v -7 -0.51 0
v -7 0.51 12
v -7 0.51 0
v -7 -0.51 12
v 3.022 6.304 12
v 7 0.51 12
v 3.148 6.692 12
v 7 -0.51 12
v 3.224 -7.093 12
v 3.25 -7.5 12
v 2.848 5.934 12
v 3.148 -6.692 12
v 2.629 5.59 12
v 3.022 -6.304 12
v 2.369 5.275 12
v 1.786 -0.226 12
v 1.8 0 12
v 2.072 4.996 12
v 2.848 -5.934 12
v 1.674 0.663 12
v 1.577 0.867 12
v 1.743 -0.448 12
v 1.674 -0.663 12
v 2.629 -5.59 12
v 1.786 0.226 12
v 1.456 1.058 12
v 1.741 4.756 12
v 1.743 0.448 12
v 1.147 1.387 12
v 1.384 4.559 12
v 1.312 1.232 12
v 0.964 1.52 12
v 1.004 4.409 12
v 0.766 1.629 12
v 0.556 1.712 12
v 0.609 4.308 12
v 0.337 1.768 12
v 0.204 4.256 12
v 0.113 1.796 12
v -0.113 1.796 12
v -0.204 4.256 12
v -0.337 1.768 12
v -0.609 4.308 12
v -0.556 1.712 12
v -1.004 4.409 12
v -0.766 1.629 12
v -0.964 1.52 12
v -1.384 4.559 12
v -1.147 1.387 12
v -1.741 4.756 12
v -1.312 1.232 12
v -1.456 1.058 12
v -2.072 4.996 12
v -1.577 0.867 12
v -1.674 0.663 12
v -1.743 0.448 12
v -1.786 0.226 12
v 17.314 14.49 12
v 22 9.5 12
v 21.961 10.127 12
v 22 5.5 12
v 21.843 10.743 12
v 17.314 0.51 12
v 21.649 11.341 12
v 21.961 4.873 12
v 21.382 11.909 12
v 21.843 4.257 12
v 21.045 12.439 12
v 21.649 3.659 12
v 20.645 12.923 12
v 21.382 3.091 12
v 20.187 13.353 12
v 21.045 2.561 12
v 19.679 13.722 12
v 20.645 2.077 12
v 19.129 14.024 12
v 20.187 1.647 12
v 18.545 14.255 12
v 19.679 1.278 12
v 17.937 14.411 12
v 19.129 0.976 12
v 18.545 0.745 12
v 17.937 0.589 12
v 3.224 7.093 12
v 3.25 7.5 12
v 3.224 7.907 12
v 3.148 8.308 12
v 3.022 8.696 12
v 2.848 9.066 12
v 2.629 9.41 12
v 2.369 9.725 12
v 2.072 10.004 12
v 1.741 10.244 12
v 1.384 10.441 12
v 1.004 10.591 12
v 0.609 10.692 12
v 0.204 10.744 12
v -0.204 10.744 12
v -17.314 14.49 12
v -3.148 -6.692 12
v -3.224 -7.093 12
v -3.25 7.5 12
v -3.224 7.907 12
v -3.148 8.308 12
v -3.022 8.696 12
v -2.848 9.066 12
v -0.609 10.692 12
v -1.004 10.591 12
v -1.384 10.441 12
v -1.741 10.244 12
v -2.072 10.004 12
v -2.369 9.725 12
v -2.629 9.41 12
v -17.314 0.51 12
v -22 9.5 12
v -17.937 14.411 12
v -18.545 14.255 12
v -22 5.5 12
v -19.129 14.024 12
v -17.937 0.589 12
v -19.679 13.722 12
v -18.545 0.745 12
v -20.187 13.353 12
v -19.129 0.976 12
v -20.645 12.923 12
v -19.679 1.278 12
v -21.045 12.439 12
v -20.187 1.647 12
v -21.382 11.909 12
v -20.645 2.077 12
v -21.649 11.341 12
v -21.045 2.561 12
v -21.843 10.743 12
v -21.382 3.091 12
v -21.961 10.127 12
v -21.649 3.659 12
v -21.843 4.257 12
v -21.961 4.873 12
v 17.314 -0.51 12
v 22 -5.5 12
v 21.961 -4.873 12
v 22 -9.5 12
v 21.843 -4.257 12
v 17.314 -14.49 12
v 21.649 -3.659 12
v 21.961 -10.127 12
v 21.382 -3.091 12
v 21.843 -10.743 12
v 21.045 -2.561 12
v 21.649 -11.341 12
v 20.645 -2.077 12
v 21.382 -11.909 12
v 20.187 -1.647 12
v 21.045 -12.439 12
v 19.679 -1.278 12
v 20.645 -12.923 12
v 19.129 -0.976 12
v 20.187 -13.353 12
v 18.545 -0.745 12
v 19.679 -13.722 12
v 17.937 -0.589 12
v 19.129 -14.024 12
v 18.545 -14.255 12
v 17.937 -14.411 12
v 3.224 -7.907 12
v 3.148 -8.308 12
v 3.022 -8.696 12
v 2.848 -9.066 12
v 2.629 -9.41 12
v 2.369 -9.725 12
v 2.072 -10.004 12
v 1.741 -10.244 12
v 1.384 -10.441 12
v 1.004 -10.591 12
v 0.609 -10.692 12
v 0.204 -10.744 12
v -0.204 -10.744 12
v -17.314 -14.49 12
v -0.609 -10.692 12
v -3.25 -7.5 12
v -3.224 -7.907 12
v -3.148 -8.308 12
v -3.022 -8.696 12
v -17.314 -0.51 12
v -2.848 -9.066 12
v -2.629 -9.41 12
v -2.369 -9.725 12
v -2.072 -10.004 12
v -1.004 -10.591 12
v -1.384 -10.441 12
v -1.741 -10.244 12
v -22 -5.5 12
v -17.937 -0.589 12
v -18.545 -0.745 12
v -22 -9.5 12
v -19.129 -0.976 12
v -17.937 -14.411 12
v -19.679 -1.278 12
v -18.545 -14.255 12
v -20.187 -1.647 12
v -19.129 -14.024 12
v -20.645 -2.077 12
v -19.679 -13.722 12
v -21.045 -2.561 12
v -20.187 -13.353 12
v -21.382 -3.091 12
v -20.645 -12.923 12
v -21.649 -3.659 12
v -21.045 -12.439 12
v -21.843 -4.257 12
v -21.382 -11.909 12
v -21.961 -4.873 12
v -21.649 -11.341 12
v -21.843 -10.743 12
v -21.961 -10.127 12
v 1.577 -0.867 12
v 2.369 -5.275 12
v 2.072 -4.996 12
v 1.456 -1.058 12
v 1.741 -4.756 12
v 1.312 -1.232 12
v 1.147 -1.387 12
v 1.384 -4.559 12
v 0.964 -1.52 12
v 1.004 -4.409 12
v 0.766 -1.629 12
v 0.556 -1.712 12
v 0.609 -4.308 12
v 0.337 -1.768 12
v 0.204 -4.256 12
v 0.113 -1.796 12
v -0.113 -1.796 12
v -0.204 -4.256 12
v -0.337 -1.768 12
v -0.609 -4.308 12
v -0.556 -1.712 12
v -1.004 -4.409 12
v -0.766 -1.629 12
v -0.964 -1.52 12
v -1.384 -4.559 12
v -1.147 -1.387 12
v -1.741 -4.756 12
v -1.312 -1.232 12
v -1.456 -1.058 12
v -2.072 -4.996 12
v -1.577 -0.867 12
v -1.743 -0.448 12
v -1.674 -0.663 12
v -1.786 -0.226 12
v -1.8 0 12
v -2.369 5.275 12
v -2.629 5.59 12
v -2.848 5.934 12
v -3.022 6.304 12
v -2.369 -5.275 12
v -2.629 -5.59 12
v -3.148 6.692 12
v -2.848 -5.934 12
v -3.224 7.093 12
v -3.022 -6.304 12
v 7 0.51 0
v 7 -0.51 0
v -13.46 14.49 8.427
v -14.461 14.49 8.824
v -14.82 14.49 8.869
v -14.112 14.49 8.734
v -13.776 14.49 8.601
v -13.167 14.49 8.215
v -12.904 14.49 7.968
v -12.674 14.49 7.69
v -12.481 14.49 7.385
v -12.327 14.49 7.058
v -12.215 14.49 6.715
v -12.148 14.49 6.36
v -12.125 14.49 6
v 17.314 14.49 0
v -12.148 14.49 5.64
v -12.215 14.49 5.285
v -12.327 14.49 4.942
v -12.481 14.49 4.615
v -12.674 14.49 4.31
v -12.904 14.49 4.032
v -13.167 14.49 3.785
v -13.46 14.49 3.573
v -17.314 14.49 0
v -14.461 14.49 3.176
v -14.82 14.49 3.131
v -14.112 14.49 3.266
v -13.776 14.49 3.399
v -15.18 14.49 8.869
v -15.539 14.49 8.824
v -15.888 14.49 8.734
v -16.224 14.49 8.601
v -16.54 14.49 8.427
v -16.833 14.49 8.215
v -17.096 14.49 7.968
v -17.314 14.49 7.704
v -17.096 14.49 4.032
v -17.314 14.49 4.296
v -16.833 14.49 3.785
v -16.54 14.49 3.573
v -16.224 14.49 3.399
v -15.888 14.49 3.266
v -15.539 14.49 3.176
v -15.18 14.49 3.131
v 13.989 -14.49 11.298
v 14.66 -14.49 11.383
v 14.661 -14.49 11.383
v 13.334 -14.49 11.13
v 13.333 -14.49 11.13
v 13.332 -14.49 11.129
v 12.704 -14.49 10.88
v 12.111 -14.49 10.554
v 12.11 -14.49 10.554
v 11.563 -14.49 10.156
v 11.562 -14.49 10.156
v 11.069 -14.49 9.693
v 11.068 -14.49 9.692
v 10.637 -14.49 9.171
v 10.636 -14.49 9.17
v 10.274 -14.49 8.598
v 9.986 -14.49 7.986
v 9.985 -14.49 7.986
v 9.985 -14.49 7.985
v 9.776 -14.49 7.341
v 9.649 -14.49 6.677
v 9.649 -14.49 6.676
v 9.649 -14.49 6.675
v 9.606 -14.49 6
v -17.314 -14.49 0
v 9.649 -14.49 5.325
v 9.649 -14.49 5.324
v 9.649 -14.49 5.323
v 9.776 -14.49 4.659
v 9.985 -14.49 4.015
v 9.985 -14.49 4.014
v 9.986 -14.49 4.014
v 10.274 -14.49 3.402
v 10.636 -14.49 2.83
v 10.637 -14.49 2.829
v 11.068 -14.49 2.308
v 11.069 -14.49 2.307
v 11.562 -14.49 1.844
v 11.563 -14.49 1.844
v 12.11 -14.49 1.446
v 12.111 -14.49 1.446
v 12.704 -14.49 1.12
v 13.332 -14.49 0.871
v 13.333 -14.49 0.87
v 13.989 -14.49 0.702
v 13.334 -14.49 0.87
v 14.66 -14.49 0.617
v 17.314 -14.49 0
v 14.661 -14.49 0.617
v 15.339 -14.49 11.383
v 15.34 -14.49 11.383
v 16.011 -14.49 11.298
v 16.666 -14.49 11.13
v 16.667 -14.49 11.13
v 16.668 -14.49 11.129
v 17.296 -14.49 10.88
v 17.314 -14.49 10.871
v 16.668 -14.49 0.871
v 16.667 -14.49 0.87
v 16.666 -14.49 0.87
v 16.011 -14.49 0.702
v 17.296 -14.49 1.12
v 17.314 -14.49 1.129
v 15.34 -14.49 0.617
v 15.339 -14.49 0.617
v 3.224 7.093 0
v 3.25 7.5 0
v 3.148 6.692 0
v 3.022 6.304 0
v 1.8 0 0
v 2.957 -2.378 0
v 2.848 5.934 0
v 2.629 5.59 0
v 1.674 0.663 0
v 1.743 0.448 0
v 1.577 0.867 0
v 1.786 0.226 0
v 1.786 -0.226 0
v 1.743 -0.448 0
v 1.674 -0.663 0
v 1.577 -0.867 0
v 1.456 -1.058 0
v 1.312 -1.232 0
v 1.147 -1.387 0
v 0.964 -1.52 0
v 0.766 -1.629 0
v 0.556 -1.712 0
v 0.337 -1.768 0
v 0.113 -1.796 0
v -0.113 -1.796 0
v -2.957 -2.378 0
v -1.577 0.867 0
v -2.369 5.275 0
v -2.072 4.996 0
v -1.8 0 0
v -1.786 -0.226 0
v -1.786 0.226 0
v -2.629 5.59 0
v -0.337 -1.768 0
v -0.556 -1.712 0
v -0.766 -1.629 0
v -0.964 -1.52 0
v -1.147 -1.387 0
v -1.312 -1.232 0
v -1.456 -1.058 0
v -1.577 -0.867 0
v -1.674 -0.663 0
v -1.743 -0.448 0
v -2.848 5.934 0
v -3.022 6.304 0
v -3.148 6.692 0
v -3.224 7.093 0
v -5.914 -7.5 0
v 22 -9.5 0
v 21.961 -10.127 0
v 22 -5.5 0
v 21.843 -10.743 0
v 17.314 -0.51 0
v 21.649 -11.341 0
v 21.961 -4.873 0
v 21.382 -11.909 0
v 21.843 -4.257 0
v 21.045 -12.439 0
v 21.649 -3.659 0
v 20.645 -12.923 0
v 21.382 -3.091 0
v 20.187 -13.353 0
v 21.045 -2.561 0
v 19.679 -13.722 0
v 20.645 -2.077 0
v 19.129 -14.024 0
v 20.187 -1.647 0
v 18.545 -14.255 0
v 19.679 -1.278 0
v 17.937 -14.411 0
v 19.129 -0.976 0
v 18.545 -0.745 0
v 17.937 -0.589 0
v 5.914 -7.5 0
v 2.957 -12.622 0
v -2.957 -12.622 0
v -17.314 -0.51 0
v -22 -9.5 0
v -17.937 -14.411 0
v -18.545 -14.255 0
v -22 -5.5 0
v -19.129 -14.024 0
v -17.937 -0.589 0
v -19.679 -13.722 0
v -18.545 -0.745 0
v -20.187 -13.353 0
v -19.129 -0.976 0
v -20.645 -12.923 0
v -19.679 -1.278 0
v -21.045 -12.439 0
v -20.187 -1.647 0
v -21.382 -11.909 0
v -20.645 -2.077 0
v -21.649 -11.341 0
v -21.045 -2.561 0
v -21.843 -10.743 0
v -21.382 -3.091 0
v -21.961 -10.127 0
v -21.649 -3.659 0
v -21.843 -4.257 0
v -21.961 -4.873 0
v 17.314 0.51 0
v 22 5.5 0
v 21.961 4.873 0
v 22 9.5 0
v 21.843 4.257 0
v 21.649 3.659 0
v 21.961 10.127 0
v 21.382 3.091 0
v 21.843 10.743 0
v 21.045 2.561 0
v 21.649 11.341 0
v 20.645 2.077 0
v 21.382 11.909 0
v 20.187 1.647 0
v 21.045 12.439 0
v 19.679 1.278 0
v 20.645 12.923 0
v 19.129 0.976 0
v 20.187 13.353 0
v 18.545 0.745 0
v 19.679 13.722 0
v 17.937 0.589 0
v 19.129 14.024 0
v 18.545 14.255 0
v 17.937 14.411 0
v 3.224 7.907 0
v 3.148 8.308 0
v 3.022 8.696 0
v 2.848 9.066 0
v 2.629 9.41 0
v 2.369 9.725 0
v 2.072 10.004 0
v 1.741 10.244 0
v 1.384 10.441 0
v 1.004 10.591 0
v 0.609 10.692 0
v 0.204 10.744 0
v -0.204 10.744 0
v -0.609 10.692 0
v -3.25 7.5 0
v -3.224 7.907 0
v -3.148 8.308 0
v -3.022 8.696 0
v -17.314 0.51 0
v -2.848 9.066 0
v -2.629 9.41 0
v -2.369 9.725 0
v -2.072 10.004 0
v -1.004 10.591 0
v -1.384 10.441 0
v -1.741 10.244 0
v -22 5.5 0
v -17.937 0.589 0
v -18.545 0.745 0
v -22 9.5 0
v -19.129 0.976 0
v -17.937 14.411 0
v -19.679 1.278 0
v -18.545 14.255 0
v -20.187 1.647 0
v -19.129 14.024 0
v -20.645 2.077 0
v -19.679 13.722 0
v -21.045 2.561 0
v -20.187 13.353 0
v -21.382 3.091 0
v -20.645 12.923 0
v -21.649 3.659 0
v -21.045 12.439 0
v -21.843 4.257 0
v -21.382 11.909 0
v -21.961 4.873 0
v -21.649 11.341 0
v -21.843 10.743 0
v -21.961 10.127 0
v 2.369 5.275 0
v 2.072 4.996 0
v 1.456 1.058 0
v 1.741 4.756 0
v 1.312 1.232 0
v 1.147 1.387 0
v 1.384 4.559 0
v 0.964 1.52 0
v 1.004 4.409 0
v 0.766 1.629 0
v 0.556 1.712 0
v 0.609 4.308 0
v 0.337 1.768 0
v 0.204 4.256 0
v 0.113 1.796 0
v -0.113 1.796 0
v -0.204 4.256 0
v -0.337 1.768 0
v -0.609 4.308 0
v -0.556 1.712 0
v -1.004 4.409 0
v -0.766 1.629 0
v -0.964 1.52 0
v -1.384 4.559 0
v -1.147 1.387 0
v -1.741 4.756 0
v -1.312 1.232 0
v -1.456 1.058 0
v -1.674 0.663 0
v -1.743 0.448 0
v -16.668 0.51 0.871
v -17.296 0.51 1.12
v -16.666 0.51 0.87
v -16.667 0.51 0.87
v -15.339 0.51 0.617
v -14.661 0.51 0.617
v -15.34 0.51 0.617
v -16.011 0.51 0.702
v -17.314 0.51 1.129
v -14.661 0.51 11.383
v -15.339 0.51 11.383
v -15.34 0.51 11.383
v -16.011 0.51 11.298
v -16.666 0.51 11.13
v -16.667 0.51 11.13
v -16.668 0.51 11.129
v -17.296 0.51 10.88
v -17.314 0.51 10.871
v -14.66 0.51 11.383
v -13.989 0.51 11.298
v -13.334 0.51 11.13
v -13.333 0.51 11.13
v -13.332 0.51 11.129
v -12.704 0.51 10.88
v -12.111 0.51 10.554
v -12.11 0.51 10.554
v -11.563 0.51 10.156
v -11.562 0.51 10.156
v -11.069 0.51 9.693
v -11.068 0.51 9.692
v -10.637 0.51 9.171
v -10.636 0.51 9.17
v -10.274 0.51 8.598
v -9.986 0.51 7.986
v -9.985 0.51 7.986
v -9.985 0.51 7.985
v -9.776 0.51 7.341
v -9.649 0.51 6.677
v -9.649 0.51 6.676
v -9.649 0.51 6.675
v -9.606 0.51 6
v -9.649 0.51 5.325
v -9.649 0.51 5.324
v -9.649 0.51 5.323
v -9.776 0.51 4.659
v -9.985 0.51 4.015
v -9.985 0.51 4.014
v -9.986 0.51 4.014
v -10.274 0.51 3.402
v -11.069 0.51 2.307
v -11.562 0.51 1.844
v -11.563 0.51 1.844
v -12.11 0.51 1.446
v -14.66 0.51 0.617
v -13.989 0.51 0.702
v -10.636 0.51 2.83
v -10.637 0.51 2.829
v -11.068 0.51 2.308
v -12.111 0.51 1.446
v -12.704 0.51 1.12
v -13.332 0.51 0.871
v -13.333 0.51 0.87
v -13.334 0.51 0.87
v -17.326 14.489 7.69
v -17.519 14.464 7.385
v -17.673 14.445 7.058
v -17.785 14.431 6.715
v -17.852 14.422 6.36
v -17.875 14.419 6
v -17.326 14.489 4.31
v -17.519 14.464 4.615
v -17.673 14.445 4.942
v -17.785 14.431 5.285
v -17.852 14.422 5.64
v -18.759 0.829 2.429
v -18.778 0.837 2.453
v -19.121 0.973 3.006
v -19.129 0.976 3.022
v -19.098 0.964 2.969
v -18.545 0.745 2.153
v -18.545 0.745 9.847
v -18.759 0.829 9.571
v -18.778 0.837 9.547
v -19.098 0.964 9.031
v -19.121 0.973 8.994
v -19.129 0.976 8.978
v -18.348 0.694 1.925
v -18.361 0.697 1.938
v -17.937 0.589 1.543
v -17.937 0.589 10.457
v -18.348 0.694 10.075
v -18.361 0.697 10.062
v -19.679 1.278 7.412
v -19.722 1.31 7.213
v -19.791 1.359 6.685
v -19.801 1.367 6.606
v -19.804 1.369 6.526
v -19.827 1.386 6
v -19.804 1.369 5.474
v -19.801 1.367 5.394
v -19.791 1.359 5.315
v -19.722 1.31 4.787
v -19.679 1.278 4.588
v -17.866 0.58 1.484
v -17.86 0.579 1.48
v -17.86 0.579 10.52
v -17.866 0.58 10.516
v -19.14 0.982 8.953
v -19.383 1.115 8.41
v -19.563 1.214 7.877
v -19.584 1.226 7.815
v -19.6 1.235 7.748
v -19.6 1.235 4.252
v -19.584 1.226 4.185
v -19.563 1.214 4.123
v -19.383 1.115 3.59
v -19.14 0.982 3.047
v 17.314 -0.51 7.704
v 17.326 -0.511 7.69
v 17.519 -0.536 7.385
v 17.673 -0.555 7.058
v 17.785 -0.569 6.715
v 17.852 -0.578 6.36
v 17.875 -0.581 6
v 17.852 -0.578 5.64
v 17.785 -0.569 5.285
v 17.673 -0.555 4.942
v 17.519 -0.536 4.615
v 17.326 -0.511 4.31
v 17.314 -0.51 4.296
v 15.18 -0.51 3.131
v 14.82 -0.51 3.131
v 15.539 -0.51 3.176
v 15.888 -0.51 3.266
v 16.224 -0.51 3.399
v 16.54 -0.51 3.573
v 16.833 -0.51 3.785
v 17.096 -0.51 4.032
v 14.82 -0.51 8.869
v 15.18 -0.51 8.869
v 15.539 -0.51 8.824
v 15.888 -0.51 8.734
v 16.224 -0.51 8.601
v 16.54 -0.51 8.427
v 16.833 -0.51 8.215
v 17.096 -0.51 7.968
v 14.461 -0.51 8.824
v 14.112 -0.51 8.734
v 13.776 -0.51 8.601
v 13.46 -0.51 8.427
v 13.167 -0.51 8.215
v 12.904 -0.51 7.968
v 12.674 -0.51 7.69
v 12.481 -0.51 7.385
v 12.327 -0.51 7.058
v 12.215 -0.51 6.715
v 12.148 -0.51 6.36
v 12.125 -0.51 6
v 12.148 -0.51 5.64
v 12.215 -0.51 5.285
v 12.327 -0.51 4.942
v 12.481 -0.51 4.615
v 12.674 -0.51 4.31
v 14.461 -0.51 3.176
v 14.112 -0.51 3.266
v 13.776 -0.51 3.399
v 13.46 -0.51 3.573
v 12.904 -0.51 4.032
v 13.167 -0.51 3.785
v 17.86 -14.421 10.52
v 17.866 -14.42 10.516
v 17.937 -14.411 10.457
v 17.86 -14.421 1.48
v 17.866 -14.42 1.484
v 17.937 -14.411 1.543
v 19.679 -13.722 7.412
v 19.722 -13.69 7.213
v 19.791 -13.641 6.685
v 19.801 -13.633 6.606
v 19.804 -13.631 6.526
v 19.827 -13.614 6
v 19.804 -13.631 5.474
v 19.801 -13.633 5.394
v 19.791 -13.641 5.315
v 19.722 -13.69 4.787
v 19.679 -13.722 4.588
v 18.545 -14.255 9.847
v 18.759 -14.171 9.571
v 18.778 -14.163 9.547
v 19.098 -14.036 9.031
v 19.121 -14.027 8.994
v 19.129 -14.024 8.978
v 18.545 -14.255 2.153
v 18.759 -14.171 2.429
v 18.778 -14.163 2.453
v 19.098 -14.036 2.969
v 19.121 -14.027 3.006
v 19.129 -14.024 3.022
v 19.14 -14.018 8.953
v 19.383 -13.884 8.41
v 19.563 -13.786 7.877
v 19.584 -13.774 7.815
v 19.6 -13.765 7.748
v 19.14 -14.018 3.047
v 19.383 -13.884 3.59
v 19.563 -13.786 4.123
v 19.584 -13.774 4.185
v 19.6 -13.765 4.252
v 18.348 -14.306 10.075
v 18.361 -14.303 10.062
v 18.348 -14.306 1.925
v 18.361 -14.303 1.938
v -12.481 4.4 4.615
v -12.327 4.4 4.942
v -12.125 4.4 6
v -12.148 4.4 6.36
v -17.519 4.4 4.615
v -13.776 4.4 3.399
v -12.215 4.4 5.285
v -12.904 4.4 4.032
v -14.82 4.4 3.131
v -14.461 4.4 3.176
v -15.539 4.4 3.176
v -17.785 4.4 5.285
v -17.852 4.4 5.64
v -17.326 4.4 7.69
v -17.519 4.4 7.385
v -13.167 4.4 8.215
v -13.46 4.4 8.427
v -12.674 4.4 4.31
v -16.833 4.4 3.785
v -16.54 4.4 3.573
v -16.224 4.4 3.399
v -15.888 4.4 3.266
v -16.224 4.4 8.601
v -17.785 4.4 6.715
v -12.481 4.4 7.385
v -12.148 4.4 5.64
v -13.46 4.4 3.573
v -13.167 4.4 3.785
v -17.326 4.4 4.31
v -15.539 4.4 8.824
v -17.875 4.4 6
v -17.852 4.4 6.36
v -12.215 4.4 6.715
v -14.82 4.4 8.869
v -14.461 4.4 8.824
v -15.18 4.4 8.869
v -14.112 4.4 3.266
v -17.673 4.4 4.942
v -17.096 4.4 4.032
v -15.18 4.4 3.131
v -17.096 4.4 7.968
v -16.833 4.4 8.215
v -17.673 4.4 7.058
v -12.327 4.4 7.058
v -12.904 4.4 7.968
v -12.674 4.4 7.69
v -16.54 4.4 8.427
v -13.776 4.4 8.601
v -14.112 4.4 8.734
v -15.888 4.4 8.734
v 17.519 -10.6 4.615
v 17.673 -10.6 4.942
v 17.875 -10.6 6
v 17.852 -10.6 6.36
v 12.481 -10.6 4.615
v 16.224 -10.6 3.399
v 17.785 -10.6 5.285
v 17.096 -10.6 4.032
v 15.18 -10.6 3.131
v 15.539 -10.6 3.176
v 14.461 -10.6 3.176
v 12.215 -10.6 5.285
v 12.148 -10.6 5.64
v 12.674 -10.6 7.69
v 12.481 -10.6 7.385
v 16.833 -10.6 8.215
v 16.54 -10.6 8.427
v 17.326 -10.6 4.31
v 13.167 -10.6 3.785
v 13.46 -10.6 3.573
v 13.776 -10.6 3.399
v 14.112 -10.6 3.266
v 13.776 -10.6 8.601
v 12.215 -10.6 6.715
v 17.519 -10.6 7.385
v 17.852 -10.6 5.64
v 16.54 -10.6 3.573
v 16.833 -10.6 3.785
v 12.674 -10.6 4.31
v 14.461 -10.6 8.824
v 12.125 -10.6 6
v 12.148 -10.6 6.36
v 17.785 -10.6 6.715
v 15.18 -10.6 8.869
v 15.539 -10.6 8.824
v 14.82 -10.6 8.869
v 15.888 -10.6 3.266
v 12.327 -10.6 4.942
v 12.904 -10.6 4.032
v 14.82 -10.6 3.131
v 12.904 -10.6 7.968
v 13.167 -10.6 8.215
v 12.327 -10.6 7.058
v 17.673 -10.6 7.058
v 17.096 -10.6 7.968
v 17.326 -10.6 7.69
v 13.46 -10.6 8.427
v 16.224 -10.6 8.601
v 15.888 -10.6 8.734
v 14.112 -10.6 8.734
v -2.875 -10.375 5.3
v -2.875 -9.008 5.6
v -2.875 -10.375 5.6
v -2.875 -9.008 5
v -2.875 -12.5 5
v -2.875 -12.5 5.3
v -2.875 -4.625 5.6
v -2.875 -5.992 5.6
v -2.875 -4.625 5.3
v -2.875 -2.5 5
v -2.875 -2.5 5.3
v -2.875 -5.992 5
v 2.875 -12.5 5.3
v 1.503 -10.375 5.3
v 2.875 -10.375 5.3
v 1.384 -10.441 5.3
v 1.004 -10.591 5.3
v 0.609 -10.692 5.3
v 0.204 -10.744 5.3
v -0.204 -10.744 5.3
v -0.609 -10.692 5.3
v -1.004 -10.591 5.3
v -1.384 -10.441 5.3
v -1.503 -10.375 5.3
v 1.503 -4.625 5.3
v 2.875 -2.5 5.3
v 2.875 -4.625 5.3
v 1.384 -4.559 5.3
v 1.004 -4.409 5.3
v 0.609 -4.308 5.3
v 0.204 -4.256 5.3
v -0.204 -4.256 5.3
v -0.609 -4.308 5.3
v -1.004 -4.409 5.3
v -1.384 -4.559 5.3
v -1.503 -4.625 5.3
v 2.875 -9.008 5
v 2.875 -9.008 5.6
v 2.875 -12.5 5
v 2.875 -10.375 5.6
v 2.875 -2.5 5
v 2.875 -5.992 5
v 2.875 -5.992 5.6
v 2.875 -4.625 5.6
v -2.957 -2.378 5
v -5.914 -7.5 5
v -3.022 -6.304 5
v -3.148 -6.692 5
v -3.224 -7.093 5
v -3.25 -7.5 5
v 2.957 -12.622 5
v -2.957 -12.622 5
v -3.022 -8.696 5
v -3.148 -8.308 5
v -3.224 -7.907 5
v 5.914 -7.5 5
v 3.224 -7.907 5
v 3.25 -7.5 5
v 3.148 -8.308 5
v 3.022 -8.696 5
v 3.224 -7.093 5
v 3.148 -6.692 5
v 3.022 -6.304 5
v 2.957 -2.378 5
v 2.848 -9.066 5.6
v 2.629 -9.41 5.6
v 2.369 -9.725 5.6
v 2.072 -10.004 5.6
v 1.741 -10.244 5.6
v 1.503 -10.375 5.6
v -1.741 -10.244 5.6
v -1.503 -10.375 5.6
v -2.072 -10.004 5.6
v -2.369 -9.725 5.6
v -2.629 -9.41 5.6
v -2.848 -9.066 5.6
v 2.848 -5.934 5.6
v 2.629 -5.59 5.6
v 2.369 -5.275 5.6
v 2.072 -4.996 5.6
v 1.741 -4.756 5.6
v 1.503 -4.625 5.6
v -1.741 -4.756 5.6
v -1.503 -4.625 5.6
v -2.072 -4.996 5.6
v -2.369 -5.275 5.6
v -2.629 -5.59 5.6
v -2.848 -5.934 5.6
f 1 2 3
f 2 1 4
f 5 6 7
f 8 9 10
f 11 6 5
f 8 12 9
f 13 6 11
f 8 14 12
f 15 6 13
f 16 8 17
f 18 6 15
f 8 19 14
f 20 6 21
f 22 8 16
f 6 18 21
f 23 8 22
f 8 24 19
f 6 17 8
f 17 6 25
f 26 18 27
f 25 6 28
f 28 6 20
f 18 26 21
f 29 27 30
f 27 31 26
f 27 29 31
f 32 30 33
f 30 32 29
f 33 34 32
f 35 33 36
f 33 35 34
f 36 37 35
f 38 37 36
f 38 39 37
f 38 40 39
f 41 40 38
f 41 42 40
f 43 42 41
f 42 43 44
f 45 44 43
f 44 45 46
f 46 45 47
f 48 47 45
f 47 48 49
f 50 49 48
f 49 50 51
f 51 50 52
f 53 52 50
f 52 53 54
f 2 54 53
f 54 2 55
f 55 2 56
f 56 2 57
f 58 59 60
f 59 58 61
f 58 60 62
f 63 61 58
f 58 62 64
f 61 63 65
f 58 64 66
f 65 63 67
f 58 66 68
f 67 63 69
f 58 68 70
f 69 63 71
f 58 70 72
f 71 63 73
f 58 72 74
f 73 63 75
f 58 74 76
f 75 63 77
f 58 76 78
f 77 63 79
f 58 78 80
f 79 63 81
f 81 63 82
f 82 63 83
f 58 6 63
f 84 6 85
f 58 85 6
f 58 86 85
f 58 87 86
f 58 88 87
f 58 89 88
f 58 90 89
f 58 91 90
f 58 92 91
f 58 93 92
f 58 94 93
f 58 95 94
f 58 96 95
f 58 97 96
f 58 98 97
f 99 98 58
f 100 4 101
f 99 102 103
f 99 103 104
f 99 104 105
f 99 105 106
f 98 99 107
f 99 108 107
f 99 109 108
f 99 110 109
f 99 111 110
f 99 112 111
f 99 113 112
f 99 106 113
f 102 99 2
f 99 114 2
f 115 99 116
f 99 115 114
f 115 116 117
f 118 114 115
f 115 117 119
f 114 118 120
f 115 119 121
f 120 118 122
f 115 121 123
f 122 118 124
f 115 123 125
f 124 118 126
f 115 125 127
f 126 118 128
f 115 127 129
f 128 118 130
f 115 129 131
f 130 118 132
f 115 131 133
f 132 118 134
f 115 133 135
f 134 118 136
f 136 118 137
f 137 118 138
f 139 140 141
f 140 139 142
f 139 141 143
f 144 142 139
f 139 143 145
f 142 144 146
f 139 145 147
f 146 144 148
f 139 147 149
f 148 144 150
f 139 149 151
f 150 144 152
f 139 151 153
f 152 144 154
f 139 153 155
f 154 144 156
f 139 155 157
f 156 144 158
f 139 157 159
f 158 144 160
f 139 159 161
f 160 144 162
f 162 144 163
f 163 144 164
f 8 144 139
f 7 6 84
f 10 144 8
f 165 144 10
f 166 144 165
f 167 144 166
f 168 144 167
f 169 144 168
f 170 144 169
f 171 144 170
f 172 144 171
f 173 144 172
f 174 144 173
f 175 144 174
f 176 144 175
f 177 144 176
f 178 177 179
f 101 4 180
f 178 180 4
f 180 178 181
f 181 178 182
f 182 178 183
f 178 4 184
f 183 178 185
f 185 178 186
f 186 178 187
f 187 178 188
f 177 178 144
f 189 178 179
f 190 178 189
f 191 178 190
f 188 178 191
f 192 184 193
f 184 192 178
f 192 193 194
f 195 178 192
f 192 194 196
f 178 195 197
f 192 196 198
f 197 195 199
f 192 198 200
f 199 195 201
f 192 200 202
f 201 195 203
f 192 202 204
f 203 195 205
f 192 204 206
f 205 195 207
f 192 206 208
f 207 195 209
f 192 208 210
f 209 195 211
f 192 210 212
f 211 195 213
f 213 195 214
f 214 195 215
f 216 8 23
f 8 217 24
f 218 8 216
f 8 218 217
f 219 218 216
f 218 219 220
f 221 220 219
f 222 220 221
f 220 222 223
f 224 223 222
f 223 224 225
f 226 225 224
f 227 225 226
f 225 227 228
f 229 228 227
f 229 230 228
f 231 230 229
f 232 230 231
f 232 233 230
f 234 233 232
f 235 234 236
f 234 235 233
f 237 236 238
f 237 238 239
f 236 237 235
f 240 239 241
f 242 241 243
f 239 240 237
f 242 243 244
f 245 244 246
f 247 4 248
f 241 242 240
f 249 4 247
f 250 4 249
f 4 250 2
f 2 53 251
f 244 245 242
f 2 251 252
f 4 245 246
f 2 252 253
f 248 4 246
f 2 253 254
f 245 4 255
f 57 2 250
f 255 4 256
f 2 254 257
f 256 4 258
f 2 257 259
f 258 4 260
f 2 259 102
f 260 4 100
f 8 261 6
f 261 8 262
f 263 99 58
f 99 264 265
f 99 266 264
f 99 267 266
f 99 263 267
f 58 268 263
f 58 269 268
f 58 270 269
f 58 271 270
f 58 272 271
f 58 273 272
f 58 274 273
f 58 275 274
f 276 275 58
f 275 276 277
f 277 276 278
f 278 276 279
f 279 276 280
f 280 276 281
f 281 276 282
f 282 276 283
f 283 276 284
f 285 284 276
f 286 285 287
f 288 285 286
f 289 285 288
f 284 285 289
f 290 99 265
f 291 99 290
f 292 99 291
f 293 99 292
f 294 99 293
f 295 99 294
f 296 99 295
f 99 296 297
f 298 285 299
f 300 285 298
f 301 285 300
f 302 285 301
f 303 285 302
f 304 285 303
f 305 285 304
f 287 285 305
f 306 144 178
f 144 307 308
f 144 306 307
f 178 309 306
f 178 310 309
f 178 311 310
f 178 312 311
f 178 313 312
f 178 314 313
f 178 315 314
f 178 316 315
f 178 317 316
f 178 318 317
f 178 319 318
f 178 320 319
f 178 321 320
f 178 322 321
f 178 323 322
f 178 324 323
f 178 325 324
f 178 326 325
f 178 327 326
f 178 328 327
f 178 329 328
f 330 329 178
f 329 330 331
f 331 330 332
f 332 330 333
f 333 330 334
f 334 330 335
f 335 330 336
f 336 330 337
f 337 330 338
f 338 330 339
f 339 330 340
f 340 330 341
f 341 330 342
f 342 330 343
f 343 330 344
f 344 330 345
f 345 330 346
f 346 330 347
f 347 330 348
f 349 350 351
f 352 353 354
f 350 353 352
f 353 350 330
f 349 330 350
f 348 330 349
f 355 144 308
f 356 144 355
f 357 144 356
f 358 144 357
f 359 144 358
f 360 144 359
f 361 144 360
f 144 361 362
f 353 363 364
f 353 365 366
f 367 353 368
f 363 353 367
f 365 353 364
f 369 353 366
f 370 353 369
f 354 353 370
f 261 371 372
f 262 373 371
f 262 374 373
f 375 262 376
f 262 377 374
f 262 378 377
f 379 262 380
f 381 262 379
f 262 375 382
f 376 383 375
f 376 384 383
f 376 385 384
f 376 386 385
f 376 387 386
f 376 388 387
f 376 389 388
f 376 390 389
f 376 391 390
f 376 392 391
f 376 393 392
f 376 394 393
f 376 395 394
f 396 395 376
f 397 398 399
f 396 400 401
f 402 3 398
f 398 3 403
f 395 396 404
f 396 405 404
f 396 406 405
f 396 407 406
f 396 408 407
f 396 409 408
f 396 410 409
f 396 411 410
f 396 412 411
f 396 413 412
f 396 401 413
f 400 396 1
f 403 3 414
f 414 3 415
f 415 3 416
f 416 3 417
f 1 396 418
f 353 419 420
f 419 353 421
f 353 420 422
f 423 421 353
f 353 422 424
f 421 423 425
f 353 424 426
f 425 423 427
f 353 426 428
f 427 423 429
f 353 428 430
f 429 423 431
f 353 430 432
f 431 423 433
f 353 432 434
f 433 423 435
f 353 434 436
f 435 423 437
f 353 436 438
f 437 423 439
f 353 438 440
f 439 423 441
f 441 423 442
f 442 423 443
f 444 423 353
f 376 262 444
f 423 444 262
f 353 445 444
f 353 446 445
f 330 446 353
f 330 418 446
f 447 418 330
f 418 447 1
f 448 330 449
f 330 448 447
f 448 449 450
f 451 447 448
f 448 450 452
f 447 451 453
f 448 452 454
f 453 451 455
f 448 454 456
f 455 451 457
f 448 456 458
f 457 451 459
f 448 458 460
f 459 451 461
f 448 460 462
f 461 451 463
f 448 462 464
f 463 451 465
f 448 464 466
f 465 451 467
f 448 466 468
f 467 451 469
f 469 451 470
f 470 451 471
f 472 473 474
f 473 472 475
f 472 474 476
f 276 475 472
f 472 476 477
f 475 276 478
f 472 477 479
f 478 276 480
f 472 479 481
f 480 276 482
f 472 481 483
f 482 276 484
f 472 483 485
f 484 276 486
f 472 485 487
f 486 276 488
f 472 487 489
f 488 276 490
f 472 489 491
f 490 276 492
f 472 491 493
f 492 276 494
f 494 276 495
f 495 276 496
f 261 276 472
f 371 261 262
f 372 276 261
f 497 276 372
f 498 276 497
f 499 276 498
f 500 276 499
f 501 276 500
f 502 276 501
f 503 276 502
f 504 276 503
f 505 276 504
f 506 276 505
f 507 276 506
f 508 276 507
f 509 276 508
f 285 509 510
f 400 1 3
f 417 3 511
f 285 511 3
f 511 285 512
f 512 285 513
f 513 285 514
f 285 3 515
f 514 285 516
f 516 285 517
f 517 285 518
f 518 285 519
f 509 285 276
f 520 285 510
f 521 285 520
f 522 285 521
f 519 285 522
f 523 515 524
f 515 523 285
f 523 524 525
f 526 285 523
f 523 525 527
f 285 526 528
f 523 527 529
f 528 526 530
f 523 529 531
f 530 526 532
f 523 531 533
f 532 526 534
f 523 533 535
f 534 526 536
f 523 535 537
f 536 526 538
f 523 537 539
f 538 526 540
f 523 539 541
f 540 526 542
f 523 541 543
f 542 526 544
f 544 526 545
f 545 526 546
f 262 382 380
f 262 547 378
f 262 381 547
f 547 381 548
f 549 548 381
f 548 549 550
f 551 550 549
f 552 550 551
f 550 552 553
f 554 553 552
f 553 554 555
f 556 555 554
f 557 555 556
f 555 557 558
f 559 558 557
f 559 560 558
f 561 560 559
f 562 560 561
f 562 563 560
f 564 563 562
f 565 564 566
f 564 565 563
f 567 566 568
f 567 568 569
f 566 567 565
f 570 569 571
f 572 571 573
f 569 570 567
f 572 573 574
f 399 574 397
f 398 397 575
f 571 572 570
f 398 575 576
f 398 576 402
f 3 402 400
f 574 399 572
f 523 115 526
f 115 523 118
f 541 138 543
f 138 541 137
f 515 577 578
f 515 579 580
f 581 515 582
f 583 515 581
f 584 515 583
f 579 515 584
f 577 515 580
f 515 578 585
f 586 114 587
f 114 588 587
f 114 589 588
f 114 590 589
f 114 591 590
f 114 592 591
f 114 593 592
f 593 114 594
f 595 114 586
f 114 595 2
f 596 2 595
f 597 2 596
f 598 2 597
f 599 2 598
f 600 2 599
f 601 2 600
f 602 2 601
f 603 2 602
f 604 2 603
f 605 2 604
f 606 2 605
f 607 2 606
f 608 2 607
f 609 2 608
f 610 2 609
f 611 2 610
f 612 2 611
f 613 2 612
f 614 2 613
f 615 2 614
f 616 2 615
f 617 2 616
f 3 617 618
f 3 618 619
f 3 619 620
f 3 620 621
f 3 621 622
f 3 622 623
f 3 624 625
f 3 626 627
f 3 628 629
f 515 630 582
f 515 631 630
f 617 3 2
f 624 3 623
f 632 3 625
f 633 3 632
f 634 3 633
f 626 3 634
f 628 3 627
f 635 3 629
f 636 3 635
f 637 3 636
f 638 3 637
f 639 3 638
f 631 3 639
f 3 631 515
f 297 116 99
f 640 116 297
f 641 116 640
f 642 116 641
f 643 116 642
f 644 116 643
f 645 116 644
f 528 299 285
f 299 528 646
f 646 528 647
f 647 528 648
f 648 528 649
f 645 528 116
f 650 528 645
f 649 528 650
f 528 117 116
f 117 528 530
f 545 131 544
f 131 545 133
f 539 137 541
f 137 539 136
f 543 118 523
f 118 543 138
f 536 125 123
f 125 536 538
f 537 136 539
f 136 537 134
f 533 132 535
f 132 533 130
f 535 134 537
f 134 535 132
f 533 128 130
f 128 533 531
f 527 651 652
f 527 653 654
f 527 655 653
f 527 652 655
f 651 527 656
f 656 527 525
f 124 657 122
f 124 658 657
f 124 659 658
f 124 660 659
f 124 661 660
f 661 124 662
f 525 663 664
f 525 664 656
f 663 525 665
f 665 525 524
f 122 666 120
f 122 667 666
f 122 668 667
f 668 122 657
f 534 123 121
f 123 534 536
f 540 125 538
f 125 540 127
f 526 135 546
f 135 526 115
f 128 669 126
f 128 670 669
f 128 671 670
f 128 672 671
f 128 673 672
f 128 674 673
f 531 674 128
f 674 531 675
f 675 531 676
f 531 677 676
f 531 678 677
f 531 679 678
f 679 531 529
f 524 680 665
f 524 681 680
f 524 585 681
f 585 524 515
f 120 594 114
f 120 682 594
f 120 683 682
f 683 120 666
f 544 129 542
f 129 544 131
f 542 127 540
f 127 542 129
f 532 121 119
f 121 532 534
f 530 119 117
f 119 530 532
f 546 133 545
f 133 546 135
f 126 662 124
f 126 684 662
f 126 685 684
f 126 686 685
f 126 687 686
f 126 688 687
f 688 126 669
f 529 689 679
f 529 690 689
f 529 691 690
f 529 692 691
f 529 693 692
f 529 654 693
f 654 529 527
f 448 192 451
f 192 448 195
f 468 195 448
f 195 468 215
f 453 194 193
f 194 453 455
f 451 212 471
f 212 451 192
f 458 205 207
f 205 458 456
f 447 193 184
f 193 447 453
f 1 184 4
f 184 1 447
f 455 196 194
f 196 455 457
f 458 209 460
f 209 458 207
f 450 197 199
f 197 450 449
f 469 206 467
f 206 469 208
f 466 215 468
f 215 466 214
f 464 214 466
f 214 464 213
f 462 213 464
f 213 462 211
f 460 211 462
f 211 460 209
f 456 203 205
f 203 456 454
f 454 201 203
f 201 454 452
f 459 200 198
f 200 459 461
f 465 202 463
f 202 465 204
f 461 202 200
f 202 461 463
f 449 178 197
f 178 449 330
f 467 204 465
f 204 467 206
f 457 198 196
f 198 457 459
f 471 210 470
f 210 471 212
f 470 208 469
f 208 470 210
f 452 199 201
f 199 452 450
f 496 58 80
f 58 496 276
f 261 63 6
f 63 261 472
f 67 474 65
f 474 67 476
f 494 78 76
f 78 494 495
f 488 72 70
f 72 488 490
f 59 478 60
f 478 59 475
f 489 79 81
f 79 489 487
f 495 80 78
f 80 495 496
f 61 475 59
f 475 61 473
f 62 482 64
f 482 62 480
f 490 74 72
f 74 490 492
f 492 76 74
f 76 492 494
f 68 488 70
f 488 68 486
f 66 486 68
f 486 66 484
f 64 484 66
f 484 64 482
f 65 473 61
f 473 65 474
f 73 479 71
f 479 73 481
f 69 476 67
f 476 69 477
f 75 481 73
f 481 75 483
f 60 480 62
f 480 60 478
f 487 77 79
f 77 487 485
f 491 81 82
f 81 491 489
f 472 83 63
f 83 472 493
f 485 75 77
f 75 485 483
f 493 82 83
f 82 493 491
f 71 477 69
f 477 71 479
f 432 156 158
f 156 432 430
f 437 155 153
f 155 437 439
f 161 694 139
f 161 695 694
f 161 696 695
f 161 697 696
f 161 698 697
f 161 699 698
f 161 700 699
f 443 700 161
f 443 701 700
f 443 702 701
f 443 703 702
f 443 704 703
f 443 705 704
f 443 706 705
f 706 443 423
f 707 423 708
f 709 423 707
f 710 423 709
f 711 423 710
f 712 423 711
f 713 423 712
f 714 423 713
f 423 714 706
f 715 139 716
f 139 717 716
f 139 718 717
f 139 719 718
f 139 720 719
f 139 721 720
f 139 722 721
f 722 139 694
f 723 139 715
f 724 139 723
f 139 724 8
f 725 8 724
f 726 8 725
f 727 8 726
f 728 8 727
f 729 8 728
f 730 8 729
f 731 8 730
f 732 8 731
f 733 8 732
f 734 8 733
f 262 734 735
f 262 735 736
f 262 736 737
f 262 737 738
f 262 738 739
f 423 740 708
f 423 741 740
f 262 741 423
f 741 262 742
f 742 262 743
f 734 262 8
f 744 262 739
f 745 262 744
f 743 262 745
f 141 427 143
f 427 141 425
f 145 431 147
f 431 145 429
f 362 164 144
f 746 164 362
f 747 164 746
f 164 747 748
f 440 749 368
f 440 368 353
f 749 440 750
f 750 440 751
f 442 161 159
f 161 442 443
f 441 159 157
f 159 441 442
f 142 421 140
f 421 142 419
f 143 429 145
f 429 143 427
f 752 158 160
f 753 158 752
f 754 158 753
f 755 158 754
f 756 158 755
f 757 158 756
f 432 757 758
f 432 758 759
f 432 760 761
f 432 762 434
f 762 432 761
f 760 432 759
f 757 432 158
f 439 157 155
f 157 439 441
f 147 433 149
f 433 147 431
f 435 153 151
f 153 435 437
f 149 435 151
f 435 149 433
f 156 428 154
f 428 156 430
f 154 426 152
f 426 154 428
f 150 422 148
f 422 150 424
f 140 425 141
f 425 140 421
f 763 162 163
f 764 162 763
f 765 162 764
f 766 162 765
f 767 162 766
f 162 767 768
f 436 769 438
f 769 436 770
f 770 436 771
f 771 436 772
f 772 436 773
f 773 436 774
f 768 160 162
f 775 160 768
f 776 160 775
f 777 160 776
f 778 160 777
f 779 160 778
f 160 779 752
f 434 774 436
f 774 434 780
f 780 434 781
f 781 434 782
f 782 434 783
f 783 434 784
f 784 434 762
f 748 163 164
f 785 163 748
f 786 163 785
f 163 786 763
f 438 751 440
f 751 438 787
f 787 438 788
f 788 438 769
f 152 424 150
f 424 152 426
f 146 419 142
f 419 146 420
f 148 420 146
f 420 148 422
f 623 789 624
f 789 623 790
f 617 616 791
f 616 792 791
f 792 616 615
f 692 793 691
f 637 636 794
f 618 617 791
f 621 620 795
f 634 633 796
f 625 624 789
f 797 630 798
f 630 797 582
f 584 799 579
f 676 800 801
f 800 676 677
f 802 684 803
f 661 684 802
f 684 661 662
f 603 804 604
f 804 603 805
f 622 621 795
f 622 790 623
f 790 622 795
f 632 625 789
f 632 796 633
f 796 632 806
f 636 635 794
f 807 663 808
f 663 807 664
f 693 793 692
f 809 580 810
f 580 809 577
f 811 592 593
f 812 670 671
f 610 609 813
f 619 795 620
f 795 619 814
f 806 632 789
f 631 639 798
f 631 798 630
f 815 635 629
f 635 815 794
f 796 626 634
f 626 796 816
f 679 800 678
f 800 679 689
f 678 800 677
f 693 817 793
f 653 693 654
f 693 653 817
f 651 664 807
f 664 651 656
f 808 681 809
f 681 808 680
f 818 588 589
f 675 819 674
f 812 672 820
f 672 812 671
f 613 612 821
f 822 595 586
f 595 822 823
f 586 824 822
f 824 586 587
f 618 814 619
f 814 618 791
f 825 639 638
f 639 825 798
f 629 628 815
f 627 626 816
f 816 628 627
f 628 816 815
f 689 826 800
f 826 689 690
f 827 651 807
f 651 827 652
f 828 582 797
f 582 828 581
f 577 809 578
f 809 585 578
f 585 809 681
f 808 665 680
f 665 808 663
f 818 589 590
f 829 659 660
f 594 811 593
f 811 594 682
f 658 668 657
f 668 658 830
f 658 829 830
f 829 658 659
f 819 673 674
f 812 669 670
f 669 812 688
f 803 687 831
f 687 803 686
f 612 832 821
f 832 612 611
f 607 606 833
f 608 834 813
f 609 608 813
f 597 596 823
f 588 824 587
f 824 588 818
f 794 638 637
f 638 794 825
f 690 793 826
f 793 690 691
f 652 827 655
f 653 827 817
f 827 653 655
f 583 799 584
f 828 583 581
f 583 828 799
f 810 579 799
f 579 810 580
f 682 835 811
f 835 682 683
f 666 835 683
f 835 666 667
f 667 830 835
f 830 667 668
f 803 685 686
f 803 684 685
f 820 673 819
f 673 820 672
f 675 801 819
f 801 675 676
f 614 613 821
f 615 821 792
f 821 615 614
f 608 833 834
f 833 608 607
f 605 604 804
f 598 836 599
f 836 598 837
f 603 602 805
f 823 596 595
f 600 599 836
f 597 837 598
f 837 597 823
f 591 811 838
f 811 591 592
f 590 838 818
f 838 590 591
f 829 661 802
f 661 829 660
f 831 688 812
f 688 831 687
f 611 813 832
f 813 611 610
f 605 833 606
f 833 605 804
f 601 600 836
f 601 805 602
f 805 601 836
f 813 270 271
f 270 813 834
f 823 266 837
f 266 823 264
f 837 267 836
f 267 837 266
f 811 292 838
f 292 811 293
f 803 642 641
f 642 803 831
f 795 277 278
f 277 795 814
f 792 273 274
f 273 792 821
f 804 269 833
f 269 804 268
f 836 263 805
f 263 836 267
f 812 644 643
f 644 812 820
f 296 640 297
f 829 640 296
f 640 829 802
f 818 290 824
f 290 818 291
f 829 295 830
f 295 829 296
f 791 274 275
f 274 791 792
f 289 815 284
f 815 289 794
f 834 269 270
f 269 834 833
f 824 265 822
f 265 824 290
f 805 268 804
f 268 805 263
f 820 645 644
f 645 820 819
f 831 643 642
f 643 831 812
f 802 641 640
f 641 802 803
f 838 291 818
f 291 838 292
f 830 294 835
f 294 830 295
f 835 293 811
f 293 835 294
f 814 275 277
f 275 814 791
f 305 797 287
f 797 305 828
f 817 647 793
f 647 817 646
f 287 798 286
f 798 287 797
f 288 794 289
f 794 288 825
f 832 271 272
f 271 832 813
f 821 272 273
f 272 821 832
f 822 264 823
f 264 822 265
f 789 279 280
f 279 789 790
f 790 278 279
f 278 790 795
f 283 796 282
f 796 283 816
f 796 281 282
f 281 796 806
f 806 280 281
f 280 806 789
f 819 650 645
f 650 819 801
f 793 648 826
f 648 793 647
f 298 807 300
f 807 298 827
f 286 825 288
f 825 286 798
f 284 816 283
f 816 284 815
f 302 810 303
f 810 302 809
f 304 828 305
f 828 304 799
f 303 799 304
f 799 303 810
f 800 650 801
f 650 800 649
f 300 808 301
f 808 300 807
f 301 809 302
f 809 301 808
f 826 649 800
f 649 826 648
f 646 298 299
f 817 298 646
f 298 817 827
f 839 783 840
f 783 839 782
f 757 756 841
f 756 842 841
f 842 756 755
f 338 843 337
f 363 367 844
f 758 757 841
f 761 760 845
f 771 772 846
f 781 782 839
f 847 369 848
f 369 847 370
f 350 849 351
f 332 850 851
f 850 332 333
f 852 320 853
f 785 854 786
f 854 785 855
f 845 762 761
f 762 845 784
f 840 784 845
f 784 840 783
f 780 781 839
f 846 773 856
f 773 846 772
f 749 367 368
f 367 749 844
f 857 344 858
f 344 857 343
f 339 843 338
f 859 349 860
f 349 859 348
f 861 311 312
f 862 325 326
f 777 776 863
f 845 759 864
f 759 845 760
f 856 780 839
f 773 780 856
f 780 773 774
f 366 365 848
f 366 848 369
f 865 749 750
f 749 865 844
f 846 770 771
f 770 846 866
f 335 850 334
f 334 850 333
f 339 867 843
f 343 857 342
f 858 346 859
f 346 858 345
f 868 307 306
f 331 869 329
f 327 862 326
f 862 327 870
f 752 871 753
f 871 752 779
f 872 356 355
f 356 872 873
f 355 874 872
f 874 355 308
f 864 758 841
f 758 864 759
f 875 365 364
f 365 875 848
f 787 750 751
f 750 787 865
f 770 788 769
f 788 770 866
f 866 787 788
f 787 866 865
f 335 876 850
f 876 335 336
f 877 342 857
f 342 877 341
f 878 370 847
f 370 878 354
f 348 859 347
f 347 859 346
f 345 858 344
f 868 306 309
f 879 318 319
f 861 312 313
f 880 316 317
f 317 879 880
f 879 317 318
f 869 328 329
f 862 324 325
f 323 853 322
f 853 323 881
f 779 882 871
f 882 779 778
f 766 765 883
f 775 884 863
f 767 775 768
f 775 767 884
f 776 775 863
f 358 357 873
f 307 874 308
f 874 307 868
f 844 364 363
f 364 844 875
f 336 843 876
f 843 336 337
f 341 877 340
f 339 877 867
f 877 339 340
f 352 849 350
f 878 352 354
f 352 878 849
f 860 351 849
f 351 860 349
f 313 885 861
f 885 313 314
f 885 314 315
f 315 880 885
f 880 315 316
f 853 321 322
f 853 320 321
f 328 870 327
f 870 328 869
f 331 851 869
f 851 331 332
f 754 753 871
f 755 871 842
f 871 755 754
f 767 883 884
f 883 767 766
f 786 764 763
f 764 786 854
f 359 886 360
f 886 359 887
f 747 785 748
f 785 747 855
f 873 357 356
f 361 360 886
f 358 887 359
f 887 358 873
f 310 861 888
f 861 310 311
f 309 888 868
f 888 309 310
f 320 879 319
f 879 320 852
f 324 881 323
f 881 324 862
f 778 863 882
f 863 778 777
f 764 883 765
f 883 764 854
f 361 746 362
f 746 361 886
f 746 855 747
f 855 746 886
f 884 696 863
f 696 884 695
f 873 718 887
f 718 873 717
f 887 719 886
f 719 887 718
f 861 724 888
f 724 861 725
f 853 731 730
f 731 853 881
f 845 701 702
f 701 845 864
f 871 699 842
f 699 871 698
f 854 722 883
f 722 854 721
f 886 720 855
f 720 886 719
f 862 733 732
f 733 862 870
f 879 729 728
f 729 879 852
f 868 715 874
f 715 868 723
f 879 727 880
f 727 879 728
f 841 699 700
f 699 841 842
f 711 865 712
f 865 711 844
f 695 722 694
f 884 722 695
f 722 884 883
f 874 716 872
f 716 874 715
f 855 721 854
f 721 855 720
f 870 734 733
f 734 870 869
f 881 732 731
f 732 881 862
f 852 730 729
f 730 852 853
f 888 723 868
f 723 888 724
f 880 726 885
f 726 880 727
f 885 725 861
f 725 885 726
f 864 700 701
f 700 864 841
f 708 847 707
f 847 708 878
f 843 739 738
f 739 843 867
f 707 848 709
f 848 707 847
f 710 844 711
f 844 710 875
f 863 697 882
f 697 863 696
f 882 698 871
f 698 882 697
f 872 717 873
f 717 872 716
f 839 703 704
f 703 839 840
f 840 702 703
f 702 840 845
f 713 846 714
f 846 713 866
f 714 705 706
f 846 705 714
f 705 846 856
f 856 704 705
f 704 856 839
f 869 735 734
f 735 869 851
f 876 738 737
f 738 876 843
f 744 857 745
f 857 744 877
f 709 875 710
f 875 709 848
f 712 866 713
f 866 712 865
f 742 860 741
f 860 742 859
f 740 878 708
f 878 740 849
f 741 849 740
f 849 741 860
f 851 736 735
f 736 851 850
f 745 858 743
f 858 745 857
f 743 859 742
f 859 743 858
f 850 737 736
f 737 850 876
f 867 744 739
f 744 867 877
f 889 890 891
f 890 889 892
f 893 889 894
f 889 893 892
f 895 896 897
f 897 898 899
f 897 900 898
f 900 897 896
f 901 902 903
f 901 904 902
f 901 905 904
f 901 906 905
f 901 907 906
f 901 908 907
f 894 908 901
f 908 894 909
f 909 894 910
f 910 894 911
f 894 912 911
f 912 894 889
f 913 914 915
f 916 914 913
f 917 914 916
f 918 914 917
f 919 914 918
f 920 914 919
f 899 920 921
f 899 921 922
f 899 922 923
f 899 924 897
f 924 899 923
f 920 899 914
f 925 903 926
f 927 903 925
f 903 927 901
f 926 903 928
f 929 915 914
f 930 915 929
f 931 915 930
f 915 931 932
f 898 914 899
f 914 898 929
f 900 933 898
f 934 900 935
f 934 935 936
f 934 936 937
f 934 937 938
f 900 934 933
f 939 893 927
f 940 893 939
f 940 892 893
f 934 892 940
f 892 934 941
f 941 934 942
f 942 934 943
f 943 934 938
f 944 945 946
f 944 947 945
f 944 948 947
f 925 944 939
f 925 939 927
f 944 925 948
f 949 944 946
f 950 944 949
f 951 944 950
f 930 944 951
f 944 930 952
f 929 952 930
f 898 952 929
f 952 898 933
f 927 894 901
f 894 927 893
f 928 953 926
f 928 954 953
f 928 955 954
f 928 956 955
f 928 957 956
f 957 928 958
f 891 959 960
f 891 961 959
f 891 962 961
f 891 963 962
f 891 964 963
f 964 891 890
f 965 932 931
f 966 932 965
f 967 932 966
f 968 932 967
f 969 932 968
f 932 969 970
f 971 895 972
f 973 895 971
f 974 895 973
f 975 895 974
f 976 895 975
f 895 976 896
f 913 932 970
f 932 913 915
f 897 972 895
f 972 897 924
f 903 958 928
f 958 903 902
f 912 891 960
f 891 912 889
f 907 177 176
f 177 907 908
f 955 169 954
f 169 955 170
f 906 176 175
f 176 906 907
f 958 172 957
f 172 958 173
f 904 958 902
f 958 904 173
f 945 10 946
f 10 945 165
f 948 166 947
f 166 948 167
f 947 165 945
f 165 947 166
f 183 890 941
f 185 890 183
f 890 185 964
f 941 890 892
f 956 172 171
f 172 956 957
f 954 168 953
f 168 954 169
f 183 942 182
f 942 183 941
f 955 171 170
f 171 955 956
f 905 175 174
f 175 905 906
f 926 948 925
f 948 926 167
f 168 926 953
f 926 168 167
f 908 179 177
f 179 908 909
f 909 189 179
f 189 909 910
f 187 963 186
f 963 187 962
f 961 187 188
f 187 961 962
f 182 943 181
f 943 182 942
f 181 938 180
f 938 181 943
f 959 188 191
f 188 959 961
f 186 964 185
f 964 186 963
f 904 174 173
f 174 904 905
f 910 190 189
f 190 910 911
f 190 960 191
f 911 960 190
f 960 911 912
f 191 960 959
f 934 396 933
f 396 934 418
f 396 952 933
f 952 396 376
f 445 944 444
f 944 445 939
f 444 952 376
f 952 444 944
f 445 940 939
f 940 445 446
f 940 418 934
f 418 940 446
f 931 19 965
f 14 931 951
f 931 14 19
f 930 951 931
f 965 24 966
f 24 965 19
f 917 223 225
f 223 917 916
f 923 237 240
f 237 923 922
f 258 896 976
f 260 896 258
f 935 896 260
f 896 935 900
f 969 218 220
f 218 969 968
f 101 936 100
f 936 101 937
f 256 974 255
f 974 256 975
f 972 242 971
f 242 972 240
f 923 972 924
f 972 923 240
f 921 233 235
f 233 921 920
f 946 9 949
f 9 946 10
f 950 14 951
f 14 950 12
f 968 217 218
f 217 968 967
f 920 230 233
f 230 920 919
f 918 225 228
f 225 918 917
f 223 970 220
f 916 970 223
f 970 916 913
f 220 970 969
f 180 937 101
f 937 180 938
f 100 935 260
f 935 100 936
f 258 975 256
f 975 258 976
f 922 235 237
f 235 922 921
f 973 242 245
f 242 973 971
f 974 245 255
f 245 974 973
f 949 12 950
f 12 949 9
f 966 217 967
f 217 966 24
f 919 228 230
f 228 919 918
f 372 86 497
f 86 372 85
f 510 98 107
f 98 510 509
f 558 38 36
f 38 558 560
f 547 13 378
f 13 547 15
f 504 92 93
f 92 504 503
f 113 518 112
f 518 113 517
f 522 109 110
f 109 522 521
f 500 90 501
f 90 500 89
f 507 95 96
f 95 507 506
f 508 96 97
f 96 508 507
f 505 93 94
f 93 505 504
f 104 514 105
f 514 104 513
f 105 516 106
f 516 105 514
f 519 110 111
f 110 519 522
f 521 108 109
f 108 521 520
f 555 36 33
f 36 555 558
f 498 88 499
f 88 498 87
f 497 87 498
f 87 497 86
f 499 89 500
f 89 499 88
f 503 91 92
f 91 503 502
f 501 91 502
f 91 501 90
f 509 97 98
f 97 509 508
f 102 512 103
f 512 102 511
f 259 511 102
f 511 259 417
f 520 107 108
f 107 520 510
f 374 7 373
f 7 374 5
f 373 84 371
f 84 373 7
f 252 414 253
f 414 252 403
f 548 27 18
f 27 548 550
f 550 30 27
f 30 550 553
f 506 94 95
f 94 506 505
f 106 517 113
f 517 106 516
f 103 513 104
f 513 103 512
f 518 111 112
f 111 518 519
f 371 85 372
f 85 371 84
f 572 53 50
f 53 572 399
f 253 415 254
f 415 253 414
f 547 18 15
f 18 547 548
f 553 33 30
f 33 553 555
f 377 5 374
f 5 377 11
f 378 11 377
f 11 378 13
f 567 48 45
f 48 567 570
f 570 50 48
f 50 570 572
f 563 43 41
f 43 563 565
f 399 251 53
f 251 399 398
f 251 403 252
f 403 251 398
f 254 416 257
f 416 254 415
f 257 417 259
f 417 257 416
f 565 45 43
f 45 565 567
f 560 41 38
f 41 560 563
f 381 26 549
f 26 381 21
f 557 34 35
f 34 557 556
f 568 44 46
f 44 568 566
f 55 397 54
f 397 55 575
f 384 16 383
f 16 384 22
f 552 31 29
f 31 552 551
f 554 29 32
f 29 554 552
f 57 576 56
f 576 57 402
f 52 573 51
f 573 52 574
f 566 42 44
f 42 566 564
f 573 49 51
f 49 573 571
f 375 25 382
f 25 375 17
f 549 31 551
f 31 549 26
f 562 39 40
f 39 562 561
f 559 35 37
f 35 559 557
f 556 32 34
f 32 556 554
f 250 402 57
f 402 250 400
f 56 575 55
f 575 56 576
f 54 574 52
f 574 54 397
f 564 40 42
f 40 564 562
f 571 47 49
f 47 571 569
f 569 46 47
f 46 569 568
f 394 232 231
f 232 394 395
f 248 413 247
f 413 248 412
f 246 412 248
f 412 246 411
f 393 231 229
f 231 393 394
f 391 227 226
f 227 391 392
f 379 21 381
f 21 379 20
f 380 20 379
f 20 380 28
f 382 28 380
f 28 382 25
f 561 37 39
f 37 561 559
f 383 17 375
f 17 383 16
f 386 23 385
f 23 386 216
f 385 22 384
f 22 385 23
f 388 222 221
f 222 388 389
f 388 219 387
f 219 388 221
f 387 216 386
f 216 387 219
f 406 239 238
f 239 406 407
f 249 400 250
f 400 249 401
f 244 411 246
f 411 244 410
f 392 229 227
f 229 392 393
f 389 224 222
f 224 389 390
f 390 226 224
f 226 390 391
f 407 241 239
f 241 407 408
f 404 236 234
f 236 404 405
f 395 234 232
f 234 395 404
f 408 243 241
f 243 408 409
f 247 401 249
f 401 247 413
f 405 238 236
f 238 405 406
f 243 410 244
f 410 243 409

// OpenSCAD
$fn = 50;


difference() {
	union() {
		hull() {
			translate(v = [-2.0000000000, 9.5000000000, 0]) {
				cylinder(h = 12, r = 5);
			}
			translate(v = [2.0000000000, 9.5000000000, 0]) {
				cylinder(h = 12, r = 5);
			}
			translate(v = [-2.0000000000, -9.5000000000, 0]) {
				cylinder(h = 12, r = 5);
			}
			translate(v = [2.0000000000, -9.5000000000, 0]) {
				cylinder(h = 12, r = 5);
			}
		}
		translate(v = [-7.5000000000, 7.5000000000, 0]) {
			hull() {
				translate(v = [-9.5000000000, 2.0000000000, 0]) {
					cylinder(h = 12, r = 5);
				}
				translate(v = [9.5000000000, 2.0000000000, 0]) {
					cylinder(h = 12, r = 5);
				}
				translate(v = [-9.5000000000, -2.0000000000, 0]) {
					cylinder(h = 12, r = 5);
				}
				translate(v = [9.5000000000, -2.0000000000, 0]) {
					cylinder(h = 12, r = 5);
				}
			}
		}
		translate(v = [-7.5000000000, -7.5000000000, 0]) {
			hull() {
				translate(v = [-9.5000000000, 2.0000000000, 0]) {
					cylinder(h = 12, r = 5);
				}
				translate(v = [9.5000000000, 2.0000000000, 0]) {
					cylinder(h = 12, r = 5);
				}
				translate(v = [-9.5000000000, -2.0000000000, 0]) {
					cylinder(h = 12, r = 5);
				}
				translate(v = [9.5000000000, -2.0000000000, 0]) {
					cylinder(h = 12, r = 5);
				}
			}
		}
		translate(v = [7.5000000000, 7.5000000000, 0]) {
			hull() {
				translate(v = [-9.5000000000, 2.0000000000, 0]) {
					cylinder(h = 12, r = 5);
				}
				translate(v = [9.5000000000, 2.0000000000, 0]) {
					cylinder(h = 12, r = 5);
				}
				translate(v = [-9.5000000000, -2.0000000000, 0]) {
					cylinder(h = 12, r = 5);
				}
				translate(v = [9.5000000000, -2.0000000000, 0]) {
					cylinder(h = 12, r = 5);
				}
			}
		}
		translate(v = [7.5000000000, -7.5000000000, 0]) {
			hull() {
				translate(v = [-9.5000000000, 2.0000000000, 0]) {
					cylinder(h = 12, r = 5);
				}
				translate(v = [9.5000000000, 2.0000000000, 0]) {
					cylinder(h = 12, r = 5);
				}
				translate(v = [-9.5000000000, -2.0000000000, 0]) {
					cylinder(h = 12, r = 5);
				}
				translate(v = [9.5000000000, -2.0000000000, 0]) {
					cylinder(h = 12, r = 5);
				}
			}
		}
	}
	union() {
		translate(v = [-15.0000000000, 0.5000000000, 6.0000000000]) {
			rotate(a = [90, 0, 0]) {
				difference() {
					union() {
						#translate(v = [0, 0, -14.0000000000]) {
							cylinder(h = 14, r = 2.6000000000);
						}
						#translate(v = [0, 0, -3.9000000000]) {
							cylinder(h = 3.9000000000, r1 = 2.8750000000, r2 = 5.4000000000);
						}
						#translate(v = [0, 0, -14.0000000000]) {
							cylinder(h = 14, r = 2.8750000000);
						}
						#translate(v = [0, 0, -14.0000000000]) {
							cylinder(h = 14, r = 2.6000000000);
						}
					}
					union();
				}
			}
		}
		translate(v = [15.0000000000, -14.5000000000, 6.0000000000]) {
			rotate(a = [90, 0, 0]) {
				difference() {
					union() {
						#translate(v = [0, 0, -14.0000000000]) {
							cylinder(h = 14, r = 2.6000000000);
						}
						#translate(v = [0, 0, -3.9000000000]) {
							cylinder(h = 3.9000000000, r1 = 2.8750000000, r2 = 5.4000000000);
						}
						#translate(v = [0, 0, -14.0000000000]) {
							cylinder(h = 14, r = 2.8750000000);
						}
						#translate(v = [0, 0, -14.0000000000]) {
							cylinder(h = 14, r = 2.6000000000);
						}
					}
					union();
				}
			}
		}
		translate(v = [0.0000000000, -7.5000000000, 0]) {
			rotate(a = [0, 0, 0]) {
				difference() {
					union() {
						#translate(v = [-2.8750000000, -5.0000000000, -0.3000000000]) {
							cube(size = [5.7500000000, 10, 0.3000000000]);
						}
						#translate(v = [-2.8750000000, -2.8750000000, -0.6000000000]) {
							cube(size = [5.7500000000, 5.7500000000, 0.3000000000]);
						}
						#translate(v = [-2.8750000000, -5.0000000000, 5]) {
							cube(size = [5.7500000000, 10, 0.3000000000]);
						}
						#translate(v = [-2.8750000000, -2.8750000000, 5.3000000000]) {
							cube(size = [5.7500000000, 5.7500000000, 0.3000000000]);
						}
						#translate(v = [0, 0, -100.0000000000]) {
							cylinder(h = 200, r = 3.2500000000);
						}
						#linear_extrude(height = 5) {
							polygon(points = [[5.9142500000, 0.0000000000], [2.9571250000, 5.1218907443], [-2.9571250000, 5.1218907443], [-5.9142500000, 0.0000000000], [-2.9571250000, -5.1218907443], [2.9571250000, -5.1218907443]]);
						}
						#translate(v = [-2.8750000000, -5.0000000000, -0.3000000000]) {
							cube(size = [5.7500000000, 10, 0.3000000000]);
						}
						#translate(v = [-2.8750000000, -2.8750000000, -0.6000000000]) {
							cube(size = [5.7500000000, 5.7500000000, 0.3000000000]);
						}
						#translate(v = [-2.8750000000, -5.0000000000, 5]) {
							cube(size = [5.7500000000, 10, 0.3000000000]);
						}
						#translate(v = [-2.8750000000, -2.8750000000, 5.3000000000]) {
							cube(size = [5.7500000000, 5.7500000000, 0.3000000000]);
						}
						#translate(v = [0, 0, -100.0000000000]) {
							cylinder(h = 200, r = 3.2500000000);
						}
						#translate(v = [-2.8750000000, -5.0000000000, -0.3000000000]) {
							cube(size = [5.7500000000, 10, 0.3000000000]);
						}
						#translate(v = [-2.8750000000, -2.8750000000, -0.6000000000]) {
							cube(size = [5.7500000000, 5.7500000000, 0.3000000000]);
						}
						#translate(v = [-2.8750000000, -5.0000000000, 5]) {
							cube(size = [5.7500000000, 10, 0.3000000000]);
						}
						#translate(v = [-2.8750000000, -2.8750000000, 5.3000000000]) {
							cube(size = [5.7500000000, 5.7500000000, 0.3000000000]);
						}
						#translate(v = [0, 0, -100.0000000000]) {
							cylinder(h = 200, r = 3.2500000000);
						}
					}
					union();
				}
			}
		}
		translate(v = [0.0000000000, -7.5000000000, 0]) {
			translate(v = [0, 0, -100]) {
				cylinder(h = 200, r = 3.2500000000);
			}
		}
		translate(v = [0.0000000000, 7.5000000000, 0]) {
			translate(v = [0, 0, -100]) {
				cylinder(h = 200, r = 3.2500000000);
			}
		}
		translate(v = [0.0000000000, -7.5000000000, 0]) {
			translate(v = [0, 0, -100]) {
				cylinder(h = 200, r = 1.8000000000);
			}
		}
		translate(v = [0, 0, -100]) {
			cylinder(h = 200, r = 1.8000000000);
		}
		translate(v = [0.0000000000, 7.5000000000, 0]) {
			translate(v = [0, 0, -100]) {
				cylinder(h = 200, r = 1.8000000000);
			}
		}
	}
}
